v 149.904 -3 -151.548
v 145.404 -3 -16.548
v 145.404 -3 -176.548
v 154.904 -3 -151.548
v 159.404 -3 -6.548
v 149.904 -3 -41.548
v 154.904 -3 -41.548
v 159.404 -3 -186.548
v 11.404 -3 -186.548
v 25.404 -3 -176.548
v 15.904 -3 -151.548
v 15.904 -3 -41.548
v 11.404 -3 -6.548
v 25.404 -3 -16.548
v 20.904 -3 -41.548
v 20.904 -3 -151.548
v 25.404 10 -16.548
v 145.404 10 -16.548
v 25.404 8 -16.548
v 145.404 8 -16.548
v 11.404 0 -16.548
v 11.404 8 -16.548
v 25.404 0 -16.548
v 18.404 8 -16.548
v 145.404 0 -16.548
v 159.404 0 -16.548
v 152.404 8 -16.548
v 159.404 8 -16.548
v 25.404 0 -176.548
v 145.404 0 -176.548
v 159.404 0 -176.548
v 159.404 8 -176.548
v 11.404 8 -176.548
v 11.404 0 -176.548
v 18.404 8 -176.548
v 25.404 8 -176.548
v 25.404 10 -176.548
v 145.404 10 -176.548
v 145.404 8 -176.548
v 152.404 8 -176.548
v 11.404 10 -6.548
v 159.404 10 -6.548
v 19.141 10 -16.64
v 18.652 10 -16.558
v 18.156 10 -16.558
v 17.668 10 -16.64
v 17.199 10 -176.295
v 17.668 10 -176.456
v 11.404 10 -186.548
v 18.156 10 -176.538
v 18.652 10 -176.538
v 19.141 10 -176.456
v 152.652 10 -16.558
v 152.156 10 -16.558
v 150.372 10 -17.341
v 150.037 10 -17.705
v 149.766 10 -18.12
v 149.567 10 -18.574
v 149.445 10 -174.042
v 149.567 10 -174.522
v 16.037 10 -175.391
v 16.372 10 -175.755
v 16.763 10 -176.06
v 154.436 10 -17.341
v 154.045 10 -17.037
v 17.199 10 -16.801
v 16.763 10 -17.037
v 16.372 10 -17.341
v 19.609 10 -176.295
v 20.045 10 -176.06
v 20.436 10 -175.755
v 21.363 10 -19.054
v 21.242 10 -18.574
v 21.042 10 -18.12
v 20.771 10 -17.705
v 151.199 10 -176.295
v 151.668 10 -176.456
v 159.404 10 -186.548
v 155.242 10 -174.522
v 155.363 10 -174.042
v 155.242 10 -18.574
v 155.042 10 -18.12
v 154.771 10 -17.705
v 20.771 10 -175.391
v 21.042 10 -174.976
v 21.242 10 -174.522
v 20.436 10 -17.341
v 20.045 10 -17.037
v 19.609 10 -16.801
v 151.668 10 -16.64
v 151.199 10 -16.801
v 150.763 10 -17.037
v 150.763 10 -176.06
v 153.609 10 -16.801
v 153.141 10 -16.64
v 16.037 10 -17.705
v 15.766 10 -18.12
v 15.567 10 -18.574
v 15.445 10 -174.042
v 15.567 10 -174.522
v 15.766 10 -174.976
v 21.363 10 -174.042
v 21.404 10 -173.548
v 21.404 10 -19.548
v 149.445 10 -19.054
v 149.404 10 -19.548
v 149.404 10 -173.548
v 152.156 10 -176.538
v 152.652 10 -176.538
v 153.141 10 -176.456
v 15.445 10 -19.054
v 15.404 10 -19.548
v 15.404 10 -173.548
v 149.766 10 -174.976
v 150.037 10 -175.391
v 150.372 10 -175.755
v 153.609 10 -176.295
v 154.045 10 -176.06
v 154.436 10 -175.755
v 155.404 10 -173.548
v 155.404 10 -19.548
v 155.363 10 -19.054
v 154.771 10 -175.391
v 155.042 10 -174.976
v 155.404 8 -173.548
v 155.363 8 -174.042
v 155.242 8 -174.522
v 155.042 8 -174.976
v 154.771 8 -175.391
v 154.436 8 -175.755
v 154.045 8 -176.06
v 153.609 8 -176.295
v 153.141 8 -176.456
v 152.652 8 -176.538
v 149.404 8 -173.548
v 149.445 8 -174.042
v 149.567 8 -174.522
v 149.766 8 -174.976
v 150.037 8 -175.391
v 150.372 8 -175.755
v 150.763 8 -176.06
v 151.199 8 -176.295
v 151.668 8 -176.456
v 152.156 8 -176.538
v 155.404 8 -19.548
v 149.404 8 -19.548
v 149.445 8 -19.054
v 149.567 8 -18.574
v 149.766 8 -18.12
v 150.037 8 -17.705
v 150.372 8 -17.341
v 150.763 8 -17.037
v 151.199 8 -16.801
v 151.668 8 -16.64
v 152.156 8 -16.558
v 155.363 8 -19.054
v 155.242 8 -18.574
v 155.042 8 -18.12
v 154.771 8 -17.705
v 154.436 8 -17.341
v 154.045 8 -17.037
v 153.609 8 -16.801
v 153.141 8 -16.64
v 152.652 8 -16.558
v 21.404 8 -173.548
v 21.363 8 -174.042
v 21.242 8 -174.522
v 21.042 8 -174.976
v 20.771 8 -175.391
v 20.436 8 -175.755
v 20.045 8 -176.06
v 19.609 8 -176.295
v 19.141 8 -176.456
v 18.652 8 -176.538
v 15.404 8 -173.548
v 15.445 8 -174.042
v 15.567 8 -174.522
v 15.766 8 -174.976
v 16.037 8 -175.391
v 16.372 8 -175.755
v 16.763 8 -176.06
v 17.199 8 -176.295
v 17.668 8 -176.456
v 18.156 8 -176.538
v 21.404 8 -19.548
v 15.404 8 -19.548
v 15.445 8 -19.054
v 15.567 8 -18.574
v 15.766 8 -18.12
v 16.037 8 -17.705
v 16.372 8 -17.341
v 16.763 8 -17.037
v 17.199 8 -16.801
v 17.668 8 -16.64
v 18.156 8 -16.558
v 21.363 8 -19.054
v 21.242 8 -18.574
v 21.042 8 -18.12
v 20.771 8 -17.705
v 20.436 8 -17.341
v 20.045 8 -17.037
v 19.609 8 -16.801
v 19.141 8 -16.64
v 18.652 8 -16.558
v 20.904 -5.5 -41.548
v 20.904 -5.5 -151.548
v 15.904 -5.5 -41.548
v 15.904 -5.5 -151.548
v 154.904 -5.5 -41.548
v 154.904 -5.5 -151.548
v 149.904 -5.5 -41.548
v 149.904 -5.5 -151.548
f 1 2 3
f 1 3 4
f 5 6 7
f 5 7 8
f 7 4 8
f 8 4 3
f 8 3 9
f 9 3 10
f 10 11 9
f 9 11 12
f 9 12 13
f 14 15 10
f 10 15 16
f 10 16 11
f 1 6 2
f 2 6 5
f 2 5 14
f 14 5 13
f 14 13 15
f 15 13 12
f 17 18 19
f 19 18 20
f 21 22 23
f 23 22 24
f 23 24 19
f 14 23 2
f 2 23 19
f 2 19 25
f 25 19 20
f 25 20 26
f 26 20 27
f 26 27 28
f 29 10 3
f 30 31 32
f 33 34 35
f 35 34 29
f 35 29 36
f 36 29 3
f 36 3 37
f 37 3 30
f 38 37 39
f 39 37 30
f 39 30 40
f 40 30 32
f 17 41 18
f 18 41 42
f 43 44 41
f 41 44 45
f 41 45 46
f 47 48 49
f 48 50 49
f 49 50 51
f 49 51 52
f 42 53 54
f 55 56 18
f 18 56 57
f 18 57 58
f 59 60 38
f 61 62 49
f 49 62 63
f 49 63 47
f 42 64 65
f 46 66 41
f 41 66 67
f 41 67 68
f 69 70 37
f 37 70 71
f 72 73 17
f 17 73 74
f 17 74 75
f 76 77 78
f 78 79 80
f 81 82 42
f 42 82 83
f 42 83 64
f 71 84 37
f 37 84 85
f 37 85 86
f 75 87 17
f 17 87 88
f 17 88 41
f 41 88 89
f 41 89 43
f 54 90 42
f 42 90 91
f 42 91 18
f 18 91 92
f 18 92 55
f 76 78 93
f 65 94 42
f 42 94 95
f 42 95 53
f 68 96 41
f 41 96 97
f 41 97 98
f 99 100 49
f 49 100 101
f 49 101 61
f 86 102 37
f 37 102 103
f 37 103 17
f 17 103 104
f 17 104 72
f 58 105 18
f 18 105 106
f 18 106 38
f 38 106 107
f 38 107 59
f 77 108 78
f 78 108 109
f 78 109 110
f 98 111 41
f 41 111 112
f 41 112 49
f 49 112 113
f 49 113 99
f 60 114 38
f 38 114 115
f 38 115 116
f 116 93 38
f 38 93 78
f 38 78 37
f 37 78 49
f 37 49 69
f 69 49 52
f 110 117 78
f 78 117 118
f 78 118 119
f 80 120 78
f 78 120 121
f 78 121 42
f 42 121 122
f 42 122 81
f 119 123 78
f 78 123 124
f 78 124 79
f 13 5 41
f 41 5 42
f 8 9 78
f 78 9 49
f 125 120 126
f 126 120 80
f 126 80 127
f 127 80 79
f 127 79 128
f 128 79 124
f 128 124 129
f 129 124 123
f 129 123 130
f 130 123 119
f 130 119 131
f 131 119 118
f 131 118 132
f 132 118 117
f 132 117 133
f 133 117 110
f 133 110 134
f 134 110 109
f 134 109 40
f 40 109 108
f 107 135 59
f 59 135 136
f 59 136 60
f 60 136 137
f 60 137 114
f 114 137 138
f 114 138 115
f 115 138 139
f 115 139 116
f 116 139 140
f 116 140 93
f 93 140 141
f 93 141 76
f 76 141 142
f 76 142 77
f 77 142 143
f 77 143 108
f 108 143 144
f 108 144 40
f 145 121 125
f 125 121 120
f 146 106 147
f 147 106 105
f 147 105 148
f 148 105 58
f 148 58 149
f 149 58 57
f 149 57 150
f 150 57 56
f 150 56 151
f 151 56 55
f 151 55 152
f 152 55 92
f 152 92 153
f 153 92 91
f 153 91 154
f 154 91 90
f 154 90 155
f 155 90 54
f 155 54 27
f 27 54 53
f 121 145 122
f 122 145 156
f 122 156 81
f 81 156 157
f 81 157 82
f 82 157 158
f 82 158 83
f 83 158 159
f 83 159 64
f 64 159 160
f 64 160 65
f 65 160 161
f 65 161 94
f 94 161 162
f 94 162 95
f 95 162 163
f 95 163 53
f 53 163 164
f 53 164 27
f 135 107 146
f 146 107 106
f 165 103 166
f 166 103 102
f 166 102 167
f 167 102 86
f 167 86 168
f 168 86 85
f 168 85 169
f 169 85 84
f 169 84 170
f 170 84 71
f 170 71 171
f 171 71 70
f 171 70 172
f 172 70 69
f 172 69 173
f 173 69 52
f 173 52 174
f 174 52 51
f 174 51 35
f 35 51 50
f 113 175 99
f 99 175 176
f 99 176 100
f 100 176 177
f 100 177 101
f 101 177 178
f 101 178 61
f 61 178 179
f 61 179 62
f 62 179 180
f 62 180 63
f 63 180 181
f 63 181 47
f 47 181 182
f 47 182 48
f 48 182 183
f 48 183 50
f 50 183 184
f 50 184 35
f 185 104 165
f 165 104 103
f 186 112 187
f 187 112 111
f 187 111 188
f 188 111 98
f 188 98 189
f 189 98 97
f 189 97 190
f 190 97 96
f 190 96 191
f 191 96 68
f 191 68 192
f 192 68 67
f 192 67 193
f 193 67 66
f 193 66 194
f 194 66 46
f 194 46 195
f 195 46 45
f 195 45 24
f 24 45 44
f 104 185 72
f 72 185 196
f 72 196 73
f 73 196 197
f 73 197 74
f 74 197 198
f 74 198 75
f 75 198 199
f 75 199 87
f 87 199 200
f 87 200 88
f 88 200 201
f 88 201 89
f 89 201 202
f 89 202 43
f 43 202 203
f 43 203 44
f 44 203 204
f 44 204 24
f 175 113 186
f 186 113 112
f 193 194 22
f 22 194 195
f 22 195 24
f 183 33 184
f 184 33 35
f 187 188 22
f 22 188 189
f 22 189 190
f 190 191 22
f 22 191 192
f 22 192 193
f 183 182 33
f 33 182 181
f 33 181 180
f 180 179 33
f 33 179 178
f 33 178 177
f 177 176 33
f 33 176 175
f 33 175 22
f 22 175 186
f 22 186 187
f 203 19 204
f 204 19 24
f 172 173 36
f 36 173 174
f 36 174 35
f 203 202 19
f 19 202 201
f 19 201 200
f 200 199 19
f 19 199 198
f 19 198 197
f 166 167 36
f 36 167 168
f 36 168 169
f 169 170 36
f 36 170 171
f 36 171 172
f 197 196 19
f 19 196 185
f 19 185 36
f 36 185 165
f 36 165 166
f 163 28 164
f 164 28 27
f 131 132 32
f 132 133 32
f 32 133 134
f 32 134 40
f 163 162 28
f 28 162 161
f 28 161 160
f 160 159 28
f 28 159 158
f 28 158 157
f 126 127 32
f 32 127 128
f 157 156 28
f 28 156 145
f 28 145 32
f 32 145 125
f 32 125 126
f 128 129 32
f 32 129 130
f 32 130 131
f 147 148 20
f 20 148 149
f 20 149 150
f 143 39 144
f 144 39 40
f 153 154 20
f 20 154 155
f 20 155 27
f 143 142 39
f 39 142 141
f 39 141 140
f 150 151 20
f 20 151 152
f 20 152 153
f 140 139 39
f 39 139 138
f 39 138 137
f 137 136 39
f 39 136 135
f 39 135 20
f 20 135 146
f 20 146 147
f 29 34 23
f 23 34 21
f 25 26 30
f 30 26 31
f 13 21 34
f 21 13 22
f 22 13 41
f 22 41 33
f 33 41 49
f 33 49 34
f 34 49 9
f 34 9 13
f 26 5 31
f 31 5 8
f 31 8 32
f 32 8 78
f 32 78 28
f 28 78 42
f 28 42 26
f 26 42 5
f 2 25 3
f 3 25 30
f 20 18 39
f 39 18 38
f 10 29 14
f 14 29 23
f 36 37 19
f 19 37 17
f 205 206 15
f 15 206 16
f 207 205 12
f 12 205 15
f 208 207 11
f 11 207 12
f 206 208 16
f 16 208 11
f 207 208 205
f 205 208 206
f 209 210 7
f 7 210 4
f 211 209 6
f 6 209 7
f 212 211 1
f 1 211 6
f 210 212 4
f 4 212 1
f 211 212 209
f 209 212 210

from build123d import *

# Parameters (mm, degrees)
SKETCH1_W            = 146
SKETCH1_H            = 180
BOSS_EXTRUDE1_DEPTH  = 10
BOSS_EXTRUDE9_DEPTH  = 10
BOSS_EXTRUDE10_DEPTH = 10
CUT_EXTRUDE1_DEPTH   = 8
CUT_EXTRUDE3_DEPTH   = 8
CUT_EXTRUDE5_DEPTH   = 8
SKETCH9_W            = 160
SKETCH9_H            = 5
CUT_EXTRUDE6_DEPTH   = 200
SKETCH16_W           = 2
SKETCH16_H           = 100
BOSS_EXTRUDE12_DEPTH = 2
SKETCH17_W           = 12
SKETCH17_H           = 15
CUT_EXTRUDE20_DEPTH  = 5
SKETCH18_W           = 146
SKETCH18_H           = 10
BOSS_EXTRUDE13_DEPTH = 2
SKETCH19_W           = 145
SKETCH19_H           = 3
CUT_EXTRUDE21_DEPTH  = 200
SKETCH20_W           = 146
SKETCH20_H           = 10
BOSS_EXTRUDE14_DEPTH = 1
CUT_EXTRUDE14_DEPTH  = 200
SKETCH26_W           = 15
SKETCH26_H           = 3
BOSS_EXTRUDE24_DEPTH = 12
SKETCH27_W           = 15
SKETCH27_H           = 3
BOSS_EXTRUDE25_DEPTH = 12
SKETCH28_W           = 7.806424589
SKETCH28_H           = 4.847825316
SKETCH28_W_2         = 8.08212844
SKETCH28_H_2         = 5.143440523
BOSS_EXTRUDE27_DEPTH = 146
SKETCH29_W           = 10.987975608
SKETCH29_H           = 7.251742555
SKETCH29_H_2         = 6.917732736
BOSS_EXTRUDE28_DEPTH = 13
SKETCH30_W           = 160
SKETCH30_H           = 3
SKETCH30_H_2         = 2
BOSS_EXTRUDE29_DEPTH = 1
SKETCH31_W           = 160
SKETCH31_H           = 2
SKETCH31_H_2         = 3
BOSS_EXTRUDE30_DEPTH = 1
SKETCH32_W           = 160
SKETCH32_H           = 3
SKETCH32_H_2         = 2
BOSS_EXTRUDE31_DEPTH = 1
SKETCH33_W           = 160
SKETCH33_H           = 3
SKETCH33_H_2         = 2
BOSS_EXTRUDE32_DEPTH = 1
SKETCH34_W           = 5
SKETCH34_H           = 110
BOSS_EXTRUDE33_DEPTH = 2.5
SKETCH22_W           = 5
SKETCH22_H           = 100
BOSS_EXTRUDE16_DEPTH = 2
CUT_EXTRUDE16_DEPTH  = 2
CUT_EXTRUDE17_DEPTH  = 2
SKETCH24_W           = 6.837176559
SKETCH24_H           = 5.891562969
BOSS_EXTRUDE19_DEPTH = 8
SKETCH25_W           = 15
SKETCH25_H           = 3
BOSS_EXTRUDE21_DEPTH = 12
CUT_EXTRUDE18_DEPTH  = 2
SKETCH14_W           = 166
SKETCH14_H           = 200
BOSS_EXTRUDE11_DEPTH = 1
SKETCH15_W           = 166
SKETCH15_H           = 200
SKETCH15_W_2         = 148
SKETCH15_H_2         = 180
SKETCH15_W_3         = 120
SKETCH15_H_3         = 160
CUT_EXTRUDE19_DEPTH  = 10000


with BuildPart() as part:
    # Sketch1 → Boss-Extrude1 (new body)
    with BuildSketch(Plane(origin=(0, 0, 0), x_dir=(1, 0, 0), z_dir=(0, 1, 0))):
        with Locations((85.404053839, 96.548093588)):
            Rectangle(SKETCH1_W, SKETCH1_H)
        with BuildLine():
            Line((24.404053839, 16.548093588), (24.404053839, 176.548093588))
            Line((24.404053839, 176.548093588), (82.654053839, 176.548093588))
            ThreePointArc((82.654053839, 176.548093588), (82.830830534, 176.621316892), (82.904053839, 176.798093588))
            Line((82.904053839, 176.798093588), (82.904053839, 181.298093588))
            ThreePointArc((82.904053839, 181.298093588), (82.977277144, 181.474870283), (83.154053839, 181.548093588))
            Line((83.154053839, 181.548093588), (87.654053839, 181.548093588))
            ThreePointArc((87.654053839, 181.548093588), (87.830830534, 181.474870283), (87.904053839, 181.298093588))
            Line((87.904053839, 181.298093588), (87.904053839, 176.798093588))
            ThreePointArc((87.904053839, 176.798093588), (87.977277144, 176.621316892), (88.154053839, 176.548093588))
            Line((88.154053839, 176.548093588), (146.404053839, 176.548093588))
            Line((146.404053839, 176.548093588), (146.404053839, 16.548093588))
            Line((146.404053839, 16.548093588), (88.154053839, 16.548093588))
            ThreePointArc((88.154053839, 16.548093588), (87.977277144, 16.474870283), (87.904053839, 16.298093588))
            Line((87.904053839, 16.298093588), (87.904053839, 11.798093588))
            ThreePointArc((87.904053839, 11.798093588), (87.830830534, 11.621316892), (87.654053839, 11.548093588))
            Line((87.654053839, 11.548093588), (83.154053839, 11.548093588))
            ThreePointArc((83.154053839, 11.548093588), (82.977277144, 11.621316892), (82.904053839, 11.798093588))
            Line((82.904053839, 11.798093588), (82.904053839, 16.298093588))
            ThreePointArc((82.904053839, 16.298093588), (82.830830534, 16.474870283), (82.654053839, 16.548093588))
            Line((82.654053839, 16.548093588), (24.404053839, 16.548093588))
        make_face(mode=Mode.SUBTRACT)
    extrude(amount=BOSS_EXTRUDE1_DEPTH)

    # Sketch2 → Boss-Extrude9 (add)
    with BuildSketch(Plane(origin=(0, 0, 0), x_dir=(-1, 0, 0), z_dir=(0, -1, 0))):
        with BuildLine():
            Line((-82.654053839, 16.548093588), (-88.154053839, 16.548093588))
            ThreePointArc((-88.154053839, 16.548093588), (-87.977277144, 16.474870283), (-87.904053839, 16.298093588))
            Line((-87.904053839, 16.298093588), (-87.904053839, 11.798093588))
            ThreePointArc((-87.904053839, 11.798093588), (-87.830830534, 11.621316892), (-87.654053839, 11.548093588))
            Line((-87.654053839, 11.548093588), (-83.154053839, 11.548093588))
            ThreePointArc((-83.154053839, 11.548093588), (-82.977277144, 11.621316892), (-82.904053839, 11.798093588))
            Line((-82.904053839, 11.798093588), (-82.904053839, 16.298093588))
            ThreePointArc((-82.904053839, 16.298093588), (-82.830830534, 16.474870283), (-82.654053839, 16.548093588))
        make_face()
    extrude(amount=-BOSS_EXTRUDE9_DEPTH)

    # Sketch5 → Boss-Extrude10 (add)
    with BuildSketch(Plane(origin=(0, 0, 0), x_dir=(-1, 0, 0), z_dir=(0, -1, 0))):
        with BuildLine():
            Line((-82.654053839, 176.548093588), (-88.154053839, 176.548093588))
            ThreePointArc((-88.154053839, 176.548093588), (-87.977277144, 176.621316892), (-87.904053839, 176.798093588))
            Line((-87.904053839, 176.798093588), (-87.904053839, 181.298093588))
            ThreePointArc((-87.904053839, 181.298093588), (-87.830830534, 181.474870283), (-87.654053839, 181.548093588))
            Line((-87.654053839, 181.548093588), (-83.154053839, 181.548093588))
            ThreePointArc((-83.154053839, 181.548093588), (-82.977277144, 181.474870283), (-82.904053839, 181.298093588))
            Line((-82.904053839, 181.298093588), (-82.904053839, 176.798093588))
            ThreePointArc((-82.904053839, 176.798093588), (-82.830830534, 176.621316892), (-82.654053839, 176.548093588))
        make_face()
    extrude(amount=-BOSS_EXTRUDE10_DEPTH)

    # Sketch6 → Cut-Extrude1 (cut)
    with BuildSketch(Plane(origin=(0, 10, 0), x_dir=(1, 0, 0), z_dir=(0, 1, 0))):
        with BuildLine():
            Line((83.154053839, 181.548093588), (87.654053839, 181.548093588))
            ThreePointArc((87.654053839, 181.548093588), (87.830830534, 181.474870283), (87.904053839, 181.298093588))
            Line((87.904053839, 181.298093588), (87.904053839, 176.798093588))
            ThreePointArc((87.904053839, 176.798093588), (87.977277144, 176.621316892), (88.154053839, 176.548093588))
            Line((88.154053839, 176.548093588), (82.654053839, 176.548093588))
            ThreePointArc((82.654053839, 176.548093588), (82.830830534, 176.621316892), (82.904053839, 176.798093588))
            Line((82.904053839, 176.798093588), (82.904053839, 181.298093588))
            ThreePointArc((82.904053839, 181.298093588), (82.977277144, 181.474870283), (83.154053839, 181.548093588))
        make_face()
    extrude(amount=-CUT_EXTRUDE1_DEPTH, mode=Mode.SUBTRACT)

    # Sketch7 → Cut-Extrude3 (cut)
    with BuildSketch(Plane(origin=(0, 10, 0), x_dir=(1, 0, 0), z_dir=(0, 1, 0))):
        with BuildLine():
            Line((87.904053839, 11.798093588), (87.904053839, 16.298093588))
            ThreePointArc((87.904053839, 16.298093588), (87.977277144, 16.474870283), (88.154053839, 16.548093588))
            Line((88.154053839, 16.548093588), (82.654053839, 16.548093588))
            ThreePointArc((82.654053839, 16.548093588), (82.830830534, 16.474870283), (82.904053839, 16.298093588))
            Line((82.904053839, 16.298093588), (82.904053839, 11.798093588))
            ThreePointArc((82.904053839, 11.798093588), (82.977277144, 11.621316892), (83.154053839, 11.548093588))
            Line((83.154053839, 11.548093588), (87.654053839, 11.548093588))
            ThreePointArc((87.654053839, 11.548093588), (87.830830534, 11.621316892), (87.904053839, 11.798093588))
        make_face()
    extrude(amount=-CUT_EXTRUDE3_DEPTH, mode=Mode.SUBTRACT)

    # Sketch8 → Cut-Extrude5 (cut)
    with BuildSketch(Plane(origin=(0, 10, 0), x_dir=(1, 0, 0), z_dir=(0, 1, 0))):
        with BuildLine():
            Line((21.404053839, 173.548093588), (21.404053839, 19.548093588))
            ThreePointArc((21.404053839, 19.548093588), (18.404053839, 16.548093588), (15.404053839, 19.548093588))
            Line((15.404053839, 19.548093588), (15.404053839, 173.548093588))
            ThreePointArc((15.404053839, 173.548093588), (18.404053839, 176.548093588), (21.404053839, 173.548093588))
        make_face()
        with BuildLine():
            Line((155.404053839, 173.548093588), (155.404053839, 19.548093588))
            ThreePointArc((155.404053839, 19.548093588), (152.404053839, 16.548093588), (149.404053839, 19.548093588))
            Line((149.404053839, 19.548093588), (149.404053839, 173.548093588))
            ThreePointArc((149.404053839, 173.548093588), (152.404053839, 176.548093588), (155.404053839, 173.548093588))
        make_face()
    extrude(amount=-CUT_EXTRUDE5_DEPTH, mode=Mode.SUBTRACT)

    # Sketch9 → Cut-Extrude6 (cut)
    with BuildSketch(Plane(origin=(158.404053839, 0, 0), x_dir=(0, 0, -1), z_dir=(1, 0, 0))):
        with Locations((96.548093588, 5.5)):
            Rectangle(SKETCH9_W, SKETCH9_H)
    extrude(amount=-CUT_EXTRUDE6_DEPTH, mode=Mode.SUBTRACT)

    # Sketch16 → Boss-Extrude12 (add)
    with BuildSketch(Plane(origin=(0, 0, 0), x_dir=(-1, 0, 0), z_dir=(0, -1, 0))):
        Polygon((-151.404053839, 46.548093587), (-153.404053839, 46.548093588), (-153.404053839, 146.548093588), (-151.404053839, 146.548093588), align=None)
        with Locations((-18.404053839, 96.548093588)):
            Rectangle(SKETCH16_W, SKETCH16_H)
    extrude(amount=BOSS_EXTRUDE12_DEPTH)

    # Sketch17 → Cut-Extrude20 (cut)
    with BuildSketch(Plane(origin=(0, 0, 0), x_dir=(-1, 0, 0), z_dir=(0, -1, 0))):
        with Locations((-152.404053839, 24.048093588)):
            Rectangle(SKETCH17_W, SKETCH17_H)
        with Locations((-18.404053839, 24.048093588)):
            Rectangle(SKETCH17_W, SKETCH17_H)
    extrude(amount=-CUT_EXTRUDE20_DEPTH, mode=Mode.SUBTRACT)

    # Sketch18 → Boss-Extrude13 (add)
    with BuildSketch(Plane(origin=(0, 0, 0), x_dir=(-1, 0, 0), z_dir=(0, -1, 0))):
        with Locations((-85.404053839, 11.548093588)):
            Rectangle(SKETCH18_W, SKETCH18_H)
        Polygon((-158.404053839, 31.548093588), (-146.404053839, 31.548093588), (-146.404053839, 176.548093588), (-24.404053839, 176.548093588), (-24.404053839, 31.548093588), (-12.404053839, 31.548093588), (-12.404053839, 186.548093588), (-158.404053839, 186.548093588), align=None)
    extrude(amount=BOSS_EXTRUDE13_DEPTH)

    # Sketch19 → Cut-Extrude21 (cut)
    with BuildSketch(Plane.ZY.offset(-12.404053839)):
        with Locations((-104.048093588, 1.5)):
            Rectangle(SKETCH19_W, SKETCH19_H)
    extrude(amount=-CUT_EXTRUDE21_DEPTH, mode=Mode.SUBTRACT)

    # Sketch20 → Boss-Extrude14 (add)
    with BuildSketch(Plane(origin=(0, -2, 0), x_dir=(-1, 0, 0), z_dir=(0, -1, 0))):
        with Locations((-85.404053839, 11.548093588)):
            Rectangle(SKETCH20_W, SKETCH20_H)
        Polygon((-158.404053839, 31.548093588), (-146.404053839, 31.548093588), (-146.404053839, 176.548093588), (-24.404053839, 176.548093588), (-24.404053839, 31.548093588), (-12.404053839, 31.548093588), (-12.404053839, 186.548093588), (-158.404053839, 186.548093588), align=None)
    extrude(amount=BOSS_EXTRUDE14_DEPTH)

    # Sketch10 → Cut-Extrude14 (cut)
    with BuildSketch(Plane.ZY.offset(-12.404053839)):
        with BuildLine():
            Line((-14.670592587, 0), (-8.425594588, 0))
            ThreePointArc((-8.425594588, 0), (-11.548093588, 1.5), (-14.670592587, 0))
        make_face()
        with BuildLine():
            Line((-184.670592587, 0), (-178.425594588, 0))
            ThreePointArc((-178.425594588, 0), (-181.548093588, 1.5), (-184.670592587, 0))
        make_face()
    extrude(amount=-CUT_EXTRUDE14_DEPTH, mode=Mode.SUBTRACT)

    # Sketch26 → Boss-Extrude24 (add)
    with BuildSketch(Plane.ZY.offset(-146.404053839)):
        with Locations((-24.048093588, -1.5)):
            Rectangle(SKETCH26_W, SKETCH26_H)
    extrude(amount=-BOSS_EXTRUDE24_DEPTH)

    # Sketch27 → Boss-Extrude25 (add)
    with BuildSketch(Plane(origin=(24.404053839, 0, 0), x_dir=(0, 0, -1), z_dir=(1, 0, 0))):
        with Locations((24.048093588, -1.5)):
            Rectangle(SKETCH27_W, SKETCH27_H)
    extrude(amount=-BOSS_EXTRUDE25_DEPTH)

    # Sketch28 → Boss-Extrude27 (add)
    with BuildSketch(Plane(origin=(158.404053839, 0, 0), x_dir=(0, 0, -1), z_dir=(1, 0, 0))):
        with Locations((11.32588383, 1.141613022)):
            Rectangle(SKETCH28_W, SKETCH28_H)
        with Locations((181.472700273, 0.993805419)):
            Rectangle(SKETCH28_W_2, SKETCH28_H_2)
    extrude(amount=-BOSS_EXTRUDE27_DEPTH)

    # Sketch29 → Boss-Extrude28 (add)
    with BuildSketch(Plane(origin=(0, -3, 0), x_dir=(-1, 0, 0), z_dir=(0, -1, 0))):
        with Locations((-86.043966063, 180.173964866)):
            Rectangle(SKETCH29_W, SKETCH29_H)
        with Locations((-86.043966063, 13.08922722)):
            Rectangle(SKETCH29_W, SKETCH29_H_2)
    extrude(amount=-BOSS_EXTRUDE28_DEPTH)

    # Sketch30 → Boss-Extrude29 (add)
    with BuildSketch(Plane.ZY.offset(-12.404053839)):
        Polygon((-176.548093588, 10), (-186.548093588, 10), (-186.548093588, -3), (-176.548093588, -3), (-176.548093588, 0), (-176.548093588, 8), align=None)
        with Locations((-96.548093588, -1.5)):
            Rectangle(SKETCH30_W, SKETCH30_H)
        with Locations((-96.548093588, 9)):
            Rectangle(SKETCH30_W, SKETCH30_H_2)
        Polygon((-6.548093588, 10), (-16.548093588, 10), (-16.548093588, 8), (-16.548093588, 0), (-16.548093588, -3), (-6.548093588, -3), align=None)
    extrude(amount=BOSS_EXTRUDE29_DEPTH)

    # Sketch31 → Boss-Extrude30 (add)
    with BuildSketch(Plane(origin=(158.404053839, 0, 0), x_dir=(0, 0, -1), z_dir=(1, 0, 0))):
        Polygon((176.548093588, -3), (186.548093588, -3), (186.548093588, 10), (176.548093588, 10), (176.548093588, 8), (176.548093588, 0), align=None)
        with Locations((96.548093588, 9)):
            Rectangle(SKETCH31_W, SKETCH31_H)
        with Locations((96.548093588, -1.5)):
            Rectangle(SKETCH31_W, SKETCH31_H_2)
        Polygon((6.548093588, -3), (16.548093588, -3), (16.548093588, 0), (16.548093588, 8), (16.548093588, 10), (6.548093588, 10), align=None)
    extrude(amount=BOSS_EXTRUDE30_DEPTH)

    # Sketch32 → Boss-Extrude31 (add)
    with BuildSketch(Plane.ZY.offset(-146.404053839)):
        with Locations((-96.548093588, -1.5)):
            Rectangle(SKETCH32_W, SKETCH32_H)
        with Locations((-96.548093588, 9)):
            Rectangle(SKETCH32_W, SKETCH32_H_2)
    extrude(amount=BOSS_EXTRUDE31_DEPTH)

    # Sketch33 → Boss-Extrude32 (add)
    with BuildSketch(Plane(origin=(24.404053839, 0, 0), x_dir=(0, 0, -1), z_dir=(1, 0, 0))):
        with Locations((96.548093588, -1.5)):
            Rectangle(SKETCH33_W, SKETCH33_H)
        with Locations((96.548093588, 9)):
            Rectangle(SKETCH33_W, SKETCH33_H_2)
    extrude(amount=BOSS_EXTRUDE32_DEPTH)

    # Sketch34 → Boss-Extrude33 (add)
    with BuildSketch(Plane(origin=(0, -3, 0), x_dir=(-1, 0, 0), z_dir=(0, -1, 0))):
        with Locations((-152.404053839, 96.548093588)):
            Rectangle(SKETCH34_W, SKETCH34_H)
        with Locations((-18.404053839, 96.548093588)):
            Rectangle(SKETCH34_W, SKETCH34_H)
    extrude(amount=BOSS_EXTRUDE33_DEPTH)

    # Sketch22 → Boss-Extrude16 (add)
    with BuildSketch(Plane(origin=(0, -3, 0), x_dir=(-1, 0, 0), z_dir=(0, -1, 0))):
        with Locations((-152.404053839, 96.548093588)):
            Rectangle(SKETCH22_W, SKETCH22_H)
        with Locations((-18.404053839, 96.548093588)):
            Rectangle(SKETCH22_W, SKETCH22_H)
    extrude(amount=BOSS_EXTRUDE16_DEPTH)

    # Sketch11 → Cut-Extrude16 (cut)
    with BuildSketch(Plane(origin=(158.404053839, 0, 0), x_dir=(0, 0, -1), z_dir=(1, 0, 0))):
        Polygon((21.548093588, 0), (21.548093588, 1.5), (27.146169799, 0), align=None)
    extrude(amount=-CUT_EXTRUDE16_DEPTH, mode=Mode.SUBTRACT)

    # Sketch12 → Cut-Extrude17 (cut)
    with BuildSketch(Plane(origin=(158.404053839, 0, 0), x_dir=(0, 0, -1), z_dir=(1, 0, 0))):
        Polygon((165.948093588, 0), (165.948093588, 1.5), (171.546169799, 0), align=None)
    extrude(amount=-CUT_EXTRUDE17_DEPTH, mode=Mode.SUBTRACT)

    # Sketch24 → Boss-Extrude19 (add)
    with BuildSketch(Plane(origin=(0, 2, 0), x_dir=(1, 0, 0), z_dir=(0, 1, 0))):
        with Locations((85.342908549, 13.602312104)):
            Rectangle(SKETCH24_W, SKETCH24_H)
        Polygon((88.761496828, 176.548093588), (88.761496828, 183.338705529), (80.923906639, 182.847568728), (80.923906639, 176.548093588), align=None)
    extrude(amount=BOSS_EXTRUDE19_DEPTH)

    # Sketch25 → Boss-Extrude21 (add)
    with BuildSketch(Plane(origin=(24.404053839, 0, 0), x_dir=(0, 0, -1), z_dir=(1, 0, 0))):
        with Locations((24.048093588, -1.5)):
            Rectangle(SKETCH25_W, SKETCH25_H)
    extrude(amount=-BOSS_EXTRUDE21_DEPTH)

    # Sketch13 → Cut-Extrude18 (cut)
    with BuildSketch(Plane.ZY.offset(-12.404053839)):
        Polygon((-171.546169799, 0), (-171.546169799, 1.5), (-165.948093588, 0), align=None)
        Polygon((-27.146169799, 0), (-27.146169799, 1.5), (-21.548093587, 0), align=None)
    extrude(amount=-CUT_EXTRUDE18_DEPTH, mode=Mode.SUBTRACT)

    # Sketch14 → Boss-Extrude11 (add)
    with BuildSketch(Plane(origin=(0, 0, 0), x_dir=(-1, 0, 0), z_dir=(0, -1, 0))):
        with Locations((-85.404053839, 96.548093588)):
            Rectangle(SKETCH14_W, SKETCH14_H)
    extrude(amount=BOSS_EXTRUDE11_DEPTH)

    # Sketch15 → Cut-Extrude19 (cut)
    # profile 1 of 2: a face of its own
    with BuildSketch(Plane.XZ.offset(1)):
        with Locations((85.404053839, -96.548093588)):
            Rectangle(SKETCH15_W, SKETCH15_H)
        with Locations((85.404053839, -96.548093588)):
            Rectangle(SKETCH15_W_2, SKETCH15_H_2, mode=Mode.SUBTRACT)
    # profile 2 of 2: a face of its own
    with BuildSketch(Plane.XZ.offset(1)):
        with Locations((85.404053839, -96.548093588)):
            Rectangle(SKETCH15_W_3, SKETCH15_H_3)
    extrude(amount=-CUT_EXTRUDE19_DEPTH, mode=Mode.SUBTRACT)


solid = part.part
